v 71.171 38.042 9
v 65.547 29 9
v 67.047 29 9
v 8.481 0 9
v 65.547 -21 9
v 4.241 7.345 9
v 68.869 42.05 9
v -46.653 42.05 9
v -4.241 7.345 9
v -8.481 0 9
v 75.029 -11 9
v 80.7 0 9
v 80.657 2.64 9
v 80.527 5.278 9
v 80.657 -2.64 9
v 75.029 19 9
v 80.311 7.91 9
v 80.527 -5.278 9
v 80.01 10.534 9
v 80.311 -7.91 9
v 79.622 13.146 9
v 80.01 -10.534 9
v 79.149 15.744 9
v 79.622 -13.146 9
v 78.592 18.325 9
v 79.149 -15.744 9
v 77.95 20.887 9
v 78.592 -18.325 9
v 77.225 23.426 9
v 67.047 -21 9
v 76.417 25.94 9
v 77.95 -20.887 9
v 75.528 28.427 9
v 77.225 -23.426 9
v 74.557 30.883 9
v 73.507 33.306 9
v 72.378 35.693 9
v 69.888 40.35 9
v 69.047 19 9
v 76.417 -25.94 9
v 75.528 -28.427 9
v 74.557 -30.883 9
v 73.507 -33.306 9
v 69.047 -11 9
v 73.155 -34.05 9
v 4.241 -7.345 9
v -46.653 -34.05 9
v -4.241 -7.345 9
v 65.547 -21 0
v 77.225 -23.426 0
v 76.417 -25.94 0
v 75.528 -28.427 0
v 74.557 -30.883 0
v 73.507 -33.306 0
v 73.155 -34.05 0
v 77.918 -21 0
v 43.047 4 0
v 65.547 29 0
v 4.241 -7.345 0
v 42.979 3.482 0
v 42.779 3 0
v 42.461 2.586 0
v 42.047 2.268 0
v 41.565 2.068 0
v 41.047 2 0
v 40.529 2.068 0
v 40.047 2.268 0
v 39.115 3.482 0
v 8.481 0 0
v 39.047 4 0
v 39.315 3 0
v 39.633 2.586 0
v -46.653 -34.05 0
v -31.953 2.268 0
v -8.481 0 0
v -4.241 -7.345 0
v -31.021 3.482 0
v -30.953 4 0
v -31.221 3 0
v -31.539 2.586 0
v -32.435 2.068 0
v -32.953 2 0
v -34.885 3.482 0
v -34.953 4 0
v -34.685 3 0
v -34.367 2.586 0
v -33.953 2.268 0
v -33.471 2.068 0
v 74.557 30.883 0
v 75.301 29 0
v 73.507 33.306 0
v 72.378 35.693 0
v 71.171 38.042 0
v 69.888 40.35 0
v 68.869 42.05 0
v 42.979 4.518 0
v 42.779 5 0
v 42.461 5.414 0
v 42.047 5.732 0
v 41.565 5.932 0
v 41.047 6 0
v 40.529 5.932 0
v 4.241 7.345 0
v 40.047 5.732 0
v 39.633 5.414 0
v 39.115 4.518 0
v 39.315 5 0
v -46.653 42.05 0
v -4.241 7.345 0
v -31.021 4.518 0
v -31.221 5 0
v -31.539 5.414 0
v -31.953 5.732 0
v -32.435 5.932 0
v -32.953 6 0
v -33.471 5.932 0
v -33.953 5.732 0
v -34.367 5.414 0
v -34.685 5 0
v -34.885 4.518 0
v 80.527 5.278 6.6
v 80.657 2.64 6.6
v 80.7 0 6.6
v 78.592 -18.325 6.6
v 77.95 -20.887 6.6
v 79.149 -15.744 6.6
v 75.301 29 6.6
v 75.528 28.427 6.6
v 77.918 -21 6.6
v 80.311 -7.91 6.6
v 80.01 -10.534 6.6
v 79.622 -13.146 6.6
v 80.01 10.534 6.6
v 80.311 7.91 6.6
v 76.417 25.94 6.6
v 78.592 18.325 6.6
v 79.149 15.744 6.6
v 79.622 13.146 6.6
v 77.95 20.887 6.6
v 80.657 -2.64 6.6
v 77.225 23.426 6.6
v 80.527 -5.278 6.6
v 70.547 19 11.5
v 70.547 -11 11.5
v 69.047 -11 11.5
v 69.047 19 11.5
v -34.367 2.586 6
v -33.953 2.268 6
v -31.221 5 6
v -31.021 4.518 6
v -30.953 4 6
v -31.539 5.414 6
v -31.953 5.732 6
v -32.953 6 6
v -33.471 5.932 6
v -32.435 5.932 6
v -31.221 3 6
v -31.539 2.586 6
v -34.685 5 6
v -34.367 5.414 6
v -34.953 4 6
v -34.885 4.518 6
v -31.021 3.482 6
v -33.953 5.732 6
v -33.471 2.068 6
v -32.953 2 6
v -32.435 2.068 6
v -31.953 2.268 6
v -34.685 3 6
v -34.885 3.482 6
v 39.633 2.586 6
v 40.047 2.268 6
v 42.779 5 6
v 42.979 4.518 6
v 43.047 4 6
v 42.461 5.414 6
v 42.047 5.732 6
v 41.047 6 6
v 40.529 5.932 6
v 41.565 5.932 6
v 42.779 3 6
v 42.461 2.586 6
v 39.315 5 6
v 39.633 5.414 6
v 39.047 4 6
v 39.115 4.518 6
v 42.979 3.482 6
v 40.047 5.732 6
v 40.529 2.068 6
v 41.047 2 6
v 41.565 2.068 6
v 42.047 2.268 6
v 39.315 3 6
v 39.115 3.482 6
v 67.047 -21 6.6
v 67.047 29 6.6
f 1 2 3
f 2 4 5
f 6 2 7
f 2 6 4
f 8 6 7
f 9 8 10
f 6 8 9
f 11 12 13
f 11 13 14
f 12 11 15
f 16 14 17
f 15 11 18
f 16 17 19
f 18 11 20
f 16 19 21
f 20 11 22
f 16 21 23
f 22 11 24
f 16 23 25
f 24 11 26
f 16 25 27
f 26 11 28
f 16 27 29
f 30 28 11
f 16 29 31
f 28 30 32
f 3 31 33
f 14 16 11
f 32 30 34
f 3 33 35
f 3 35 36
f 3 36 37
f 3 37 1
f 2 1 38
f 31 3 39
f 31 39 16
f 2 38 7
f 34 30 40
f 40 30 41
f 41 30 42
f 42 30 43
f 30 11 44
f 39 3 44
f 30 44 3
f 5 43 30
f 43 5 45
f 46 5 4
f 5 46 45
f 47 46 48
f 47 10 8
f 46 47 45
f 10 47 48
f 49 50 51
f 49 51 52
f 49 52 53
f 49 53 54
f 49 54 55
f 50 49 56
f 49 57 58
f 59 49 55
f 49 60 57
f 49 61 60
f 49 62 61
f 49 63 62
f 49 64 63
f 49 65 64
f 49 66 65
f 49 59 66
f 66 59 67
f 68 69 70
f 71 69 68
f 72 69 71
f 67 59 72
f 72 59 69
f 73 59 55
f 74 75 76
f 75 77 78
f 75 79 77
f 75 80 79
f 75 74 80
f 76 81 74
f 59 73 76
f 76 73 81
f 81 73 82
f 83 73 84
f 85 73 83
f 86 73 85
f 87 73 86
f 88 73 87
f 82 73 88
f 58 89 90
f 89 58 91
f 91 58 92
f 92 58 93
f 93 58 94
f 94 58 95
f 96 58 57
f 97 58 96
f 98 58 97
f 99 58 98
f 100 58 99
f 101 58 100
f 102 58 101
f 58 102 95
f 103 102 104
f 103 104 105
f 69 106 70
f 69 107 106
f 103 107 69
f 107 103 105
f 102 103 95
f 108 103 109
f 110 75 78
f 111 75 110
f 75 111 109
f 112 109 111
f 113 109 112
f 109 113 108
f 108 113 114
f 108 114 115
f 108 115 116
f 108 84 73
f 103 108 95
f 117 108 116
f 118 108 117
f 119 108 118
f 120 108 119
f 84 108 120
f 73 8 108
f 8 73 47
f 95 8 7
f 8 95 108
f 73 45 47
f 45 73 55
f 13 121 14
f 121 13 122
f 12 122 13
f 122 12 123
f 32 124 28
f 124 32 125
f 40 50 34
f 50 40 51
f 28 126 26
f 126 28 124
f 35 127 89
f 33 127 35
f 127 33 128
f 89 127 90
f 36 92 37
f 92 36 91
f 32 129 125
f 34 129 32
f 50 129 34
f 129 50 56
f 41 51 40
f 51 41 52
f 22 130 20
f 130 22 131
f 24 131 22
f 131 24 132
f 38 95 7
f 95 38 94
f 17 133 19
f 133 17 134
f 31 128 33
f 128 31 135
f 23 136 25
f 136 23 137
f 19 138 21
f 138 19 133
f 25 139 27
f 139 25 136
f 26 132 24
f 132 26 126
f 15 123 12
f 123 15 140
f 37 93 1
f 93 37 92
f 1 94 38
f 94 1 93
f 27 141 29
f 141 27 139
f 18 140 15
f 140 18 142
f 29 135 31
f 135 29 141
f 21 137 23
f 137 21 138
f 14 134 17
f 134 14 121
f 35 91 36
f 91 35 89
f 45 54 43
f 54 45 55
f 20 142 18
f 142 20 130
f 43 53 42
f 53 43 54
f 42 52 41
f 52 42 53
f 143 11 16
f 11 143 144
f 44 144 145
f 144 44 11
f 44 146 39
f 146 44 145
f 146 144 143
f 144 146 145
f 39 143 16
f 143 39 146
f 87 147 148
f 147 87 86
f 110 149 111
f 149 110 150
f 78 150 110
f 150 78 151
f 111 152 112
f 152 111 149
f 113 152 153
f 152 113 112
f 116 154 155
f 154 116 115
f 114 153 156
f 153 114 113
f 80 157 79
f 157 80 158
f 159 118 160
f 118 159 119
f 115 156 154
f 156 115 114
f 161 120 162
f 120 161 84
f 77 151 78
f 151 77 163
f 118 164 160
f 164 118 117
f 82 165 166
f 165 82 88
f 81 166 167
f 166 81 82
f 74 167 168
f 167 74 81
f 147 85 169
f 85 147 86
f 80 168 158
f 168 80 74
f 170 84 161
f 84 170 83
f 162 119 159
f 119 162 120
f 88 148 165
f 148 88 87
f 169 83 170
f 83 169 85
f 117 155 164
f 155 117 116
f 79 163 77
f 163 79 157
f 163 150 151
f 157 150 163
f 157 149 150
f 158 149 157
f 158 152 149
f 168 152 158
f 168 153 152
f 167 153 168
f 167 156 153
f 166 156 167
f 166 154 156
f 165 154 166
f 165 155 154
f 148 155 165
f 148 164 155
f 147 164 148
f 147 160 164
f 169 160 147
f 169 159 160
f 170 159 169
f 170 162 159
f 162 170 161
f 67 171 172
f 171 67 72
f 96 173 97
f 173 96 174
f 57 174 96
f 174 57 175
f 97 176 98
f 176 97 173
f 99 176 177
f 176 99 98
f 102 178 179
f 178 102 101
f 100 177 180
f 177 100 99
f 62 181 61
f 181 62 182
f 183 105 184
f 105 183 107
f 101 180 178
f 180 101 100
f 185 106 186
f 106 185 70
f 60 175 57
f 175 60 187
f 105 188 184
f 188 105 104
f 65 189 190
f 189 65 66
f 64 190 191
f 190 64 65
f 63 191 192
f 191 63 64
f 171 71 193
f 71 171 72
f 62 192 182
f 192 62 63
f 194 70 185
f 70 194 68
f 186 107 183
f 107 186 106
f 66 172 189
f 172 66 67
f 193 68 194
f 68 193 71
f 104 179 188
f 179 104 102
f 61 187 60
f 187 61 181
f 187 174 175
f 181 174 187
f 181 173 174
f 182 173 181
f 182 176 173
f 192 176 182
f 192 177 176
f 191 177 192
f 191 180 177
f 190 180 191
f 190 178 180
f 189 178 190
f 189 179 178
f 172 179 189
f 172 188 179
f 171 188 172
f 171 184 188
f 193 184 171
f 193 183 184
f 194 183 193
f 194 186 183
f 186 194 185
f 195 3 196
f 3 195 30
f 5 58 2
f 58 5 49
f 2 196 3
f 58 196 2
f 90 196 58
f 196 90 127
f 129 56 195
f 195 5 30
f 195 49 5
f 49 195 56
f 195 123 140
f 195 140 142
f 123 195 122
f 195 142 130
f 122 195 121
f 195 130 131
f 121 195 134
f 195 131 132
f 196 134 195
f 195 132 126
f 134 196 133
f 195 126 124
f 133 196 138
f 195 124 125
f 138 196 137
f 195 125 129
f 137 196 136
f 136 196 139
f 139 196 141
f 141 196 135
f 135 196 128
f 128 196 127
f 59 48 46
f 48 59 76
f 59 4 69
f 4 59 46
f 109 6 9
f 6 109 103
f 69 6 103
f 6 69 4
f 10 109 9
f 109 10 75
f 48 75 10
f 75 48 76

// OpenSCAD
// file: layout.scad
// GENERATED by cad/fit.py from cad/ordered_parts.toml and config.scad.
// Do not edit: change those and run  python3 cad/fit.py  (from sport_cam/).

base_d = 162;
base_h = 54;
window_z = 9.6;
shelf_z = 21.6;
shelf_r = 77.25;
gap_ang = 270;
gap_d = 29.5;
post_r = 74;
post_angs = [90, 195, 345];
window_ribs = [90, 107.14, 124.29, 141.43, 158.57, 175.71, 192.86, 210, 227.14, 244.29, 261.43, 278.57, 295.71, 312.86, 330, 347.14, 4.29, 21.43, 38.57, 55.71, 72.86];
pi_holes = [[-39, -24.5], [19, -24.5], [-39, 24.5], [19, 24.5]];
pi_hole_d = 2.9;
vents_low = [];
vent_low_z = 0;
vents_high = [5, 25, 65, 85, 105, 125, 145, 165, 185, 205, 245, 265, 285, 305, 325, 345];
vent_high_z = 36.3;
lid_screw_angs = [45, 135, 225, 315];
lid_screw_z = 51;
lid_screw_recess = 0;
ptz_head_d = 5.3;
ptz_slot_min = 70;
ptz_slot_max = 114.19;
ptz_bolt_angs = [45, 135, 225, 315];
cable_slot_ang = 180;
cable_slot_r = 68.75;
cable_slot_w = 28;
cable_slot_d = 9;
floor_holes = [];
shelf_holes = [[22, 48, 3.4, 6.4], [22, 32, 3.4, 6.4], [-54, 48, 3.4, 6.4], [-54, 32, 3.4, 6.4]];
rests = [];
drum_h = 55;
drum_ang = 180;
drum_screws = [[61.109, 42.789], [-47.952, 57.147], [-25.515, -70.101], [57.147, -47.952]];
drum_screw_l = 8;
wire_hole = [0.383, 51.45, 12];
pocket_x0 = -46.953;
pocket_x1 = 69.047;
pocket_y0 = -34.35;
pocket_y1 = 42.35;
plate_t = 9;
plate_screws = [[-32.953, 4], [41.047, 4]];
wall_holes = [[36.487, -34.35, 51.675, 270], [36.487, -34.35, 7.325, 270], [-37.253, -34.35, 51.675, 270], [-37.253, -34.35, 7.325, 270], [-46.953, 35.35, 32.5, 180], [-46.953, 35.35, 6.5, 180], [-46.953, -30.65, 32.5, 180], [-46.953, -30.65, 6.5, 180]];
wall_hole_d = 3.4;
drum_floor_holes = [[-18.5, -61.5, 3.4, 6.4, 3], [-18.5, -52.5, 3.4, 6.4, 3]];
drum_rests = [[6.5, -57, 180, 6, 10, 6]];
switch_ang = 275;
switch_z = 36.5;
switch_hole_d = 24.5;
switch_flange_d = 32;
switch_boss_d = 36;
switch_seat_r = 79.302;
switch_panel_t = 3;
switch_flat_d = 22.5;
switch_flat_rot = 0;
drum_vents = [50, 60, 70, 80, 90, 100, 110, 120];
drum_vent_z = 27.5;
drum_arms = false;
nut_af = 14.29;
nut_t = 8.33;
bank_l = 114.8;
bank_w = 75.5;
bank_h = 36.2;
// file: config.scad
// SportCam — parametric dimensions (mm). Every part file includes this.
//
// Three kinds of number feed the CAD:
//   * design choices — wall thickness, clearances — set below;
//   * the sizes of the parts you buy — in ../../cad/ordered_parts.toml;
//   * the layout — where each board sits, which way the Pi faces, how big
//     the enclosure is — which ../../cad/fit.py solves from the other two
//     and writes to layout.scad (included half-way down).
// After changing either file run   python3 cad/fit.py   from sport_cam/.
// It re-solves the layout, re-renders the STLs and audits that every part
// fits together and prints on a Bambu Lab A1 Mini (cad/FIT_REPORT.md).
//
// Keep the numbers above the include plain numbers (fit.py reads them);
// anything worked out from the layout goes below it.
//
// This is the **PTZ-base build**: the camera, pan and tilt all come from the
// Arducam IMX477 PTZ camera with metal pan-tilt base (B0167B12), which bolts
// to the lid of a static enclosure — see docs/design/03-mechanical-design.md.
//
// This is the **camera-only variant**: no UWB anchors, no mast, no wearable.
// The camera finds and follows a person by vision alone.

$fn = 96;
clr = 0.25;                    // general printed-fit clearance per side

// ---- enclosure -------------------------------------------------------------
// Bottom to top: the power drum under the floor (below); the LED ring under a
// printed shelf, shining out through the LED window; the Raspberry Pi on the
// shelf; the lid with the camera. Every part must print in one piece on a
// Bambu Lab A1 Mini (≤ 170 mm on every axis); fit.py keeps it that way.
base_d_min    = 150;           // narrowest enclosure (outer Ø); fit.py widens it only if the parts need it
base_h_min    = 40;            // lowest floor-to-lid height; fit.py raises it to clear the stack
base_wall     = 3;
lid_t         = 5;             // lid is structural: it carries the whole camera
spigot_h      = 6;             // locating ring under the lid that drops into the mouth
spigot_w      = 3;
lid_screw_pad = 7;             // the ring is thickened here for the four radial M3 inserts
lid_screw_d   = 3.4;
led_window_h  = 12;            // circumferential window the LED ring lights
window_bridge = 22;            // longest unsupported span over the window; ribs every this far
window_rib_w  = 3;
diffuser_t    = 1.6;           // translucent band slid over the outside of the window
diffuser_lip  = 2;             // how far it overlaps the wall above and below
ledge_h       = 2;             // the band rests on this outside ledge

tape_t        = 1;             // foam tape under the power boards and the LED ring
part_gap      = 2;             // clearance fit.py keeps between parts
wall_gap      = 1;             // and between a part and the wall
shelf_t       = 3;             // the Pi shelf
post_d        = 10;            // shelf posts, merged into the wall; M3 insert in each top
post_insert_d = 4.0;
vent_w        = 4;
vent_h        = 8;
ribbon_slack_h = 8;            // clear height kept under the lid's cable slot for the ribbon to turn

// ---- Arducam pan-tilt base interface ---------------------------------------
// The base is a round turntable on four brass standoffs, the pan servo hanging
// under it between them. It keeps its standoffs: four M3 screws come up
// through the lid into them. Arducam publishes no drawing for the B0167B12
// base, so the lid is cut with radial SLOTS spanning this range. Your base's
// spacing goes in ordered_parts.toml [ptz]; the audit checks it lands inside.
ptz_bolt_min  = 70;
ptz_bolt_max  = 104;
ptz_slot_w    = 3.4;           // M3 clearance
// The ribbon and the leads leave the camera head at the top, drape over the
// turntable and come in through a slot at the back of the lid (fit.py sizes
// it to the ribbon and places it clear of the bolt slots and the lid screws).
ptz_loop      = 60;            // free ribbon kept outside for the pan and tilt travel

// ---- power drum ------------------------------------------------------------
// A round, open-topped box the enclosure's own diameter, screwed under its
// floor (the floor is its lid), so the two make one cylinder. The tripod screws
// into it, and it holds everything to do with power, which leaves the
// enclosure only the LED ring, the shelf and the Pi, and makes the whole thing
// lower. Across the middle, a pocket the power bank slides into from one side;
// the buck and the power latch stand on edge against the pocket's two side
// walls, screwed through them from inside the pocket; the PD trigger and the
// rocker switch are on the drum wall. A drop-in plate under the bank holds the
// tripod nut and carries the sprung catch. fit.py places it all.
drum_wall = 2.4;               // outer wall
drum_floor = 3;                // also the ledge the tripod screw pulls the nut down onto
pocket_wall = 3;               // the bank pocket's walls; the boards' screws are countersunk flush on the bank's side
pocket_clr = 0.6;              // round the bank, each side, so it slides
pocket_head = 1.0;             // air over the bank, under the enclosure floor
board_clear = 1.5;             // under a board standing on edge
drum_post_d = 10;              // four posts merged into the wall, an M3 heat-set insert in each top
drum_insert_d = 4.0;
drum_insert_h = 6;
wire_hole_d = 12;              // in the enclosure floor, for the leads up from the drum
catch_l = 6;                   // the catch's ramp, beyond the bank's front face
catch_h = 2.5;                 // how far it stands up in front of the bank
catch_w = 30;                  // its width, across the open end
bar_span = 50;                 // it sits on a crossbar along the plate's front edge, held at both ends,
bar_t = 2.4;                   // thinned from underneath so it flexes down as the bank goes over
finger_l = 24;                 // finger windows beside the bank's front: how far in from the open end,
finger_z = 10;                 // their bottom above the bank's underside,
finger_d = 14;                 // and how far past the pocket walls they reach
tripod_clear_d = 10.2;         // through the drum floor, for the bushing or a 3/8-16 screw
tripod_nut_clr = 0.2;          // round the nut in its hex hole, each side (epoxied)
plate_clr = 0.3;               // round the drop-in plate in the pocket, each side

// ---- solved layout ---------------------------------------------------------
include <layout.scad>          // GENERATED by cad/fit.py — bought-part sizes + layout

R_in = base_d / 2 - base_wall; // inside of the wall
// main file
// Bank plate: the floor of the power drum's bank pocket, a separate part so
// that the boards' screws through the pocket walls can be driven first.
//
// It drops into the pocket and two M3 screws come up through the drum floor
// into heat-set inserts in its underside. The tripod's 3/8-16 nut sits in a
// hex hole through it, on the drum floor: the tripod screw comes up through
// the floor and pulls the nut down onto it, so the plate only stops the nut
// turning. The bank slides in over it.
//
// Its front edge is a crossbar, held at both ends and thinned from underneath,
// with a catch on top in the middle: the bank pushes it down going in, and it
// springs up behind the bank's front face once the bank is home. To take the
// bank out, press the catch down and pinch the bank out through the finger
// windows. (A bar held at both ends prints as a plain bridge.)
//
// Drawn in the pocket's frame, as it prints: underside on the plate, the bank
// along +x with its open end at +x, the tripod axis at the origin.
include <config.scad>

R = base_d / 2;
x0 = pocket_x0;  x1 = pocket_x1;  y0 = pocket_y0;  y1 = pocket_y1;
c = plate_clr;
T = plate_t;
yc = (y0 + y1) / 2;
bx0 = x1 - 2;                               // the crossbar: from here to the front edge

module outline() {
    // the pocket's inside, out to the drum's outline at the open end
    intersection() {
        translate([x0 + c, y0 + c, 0]) cube([R + 6 - x0, y1 - y0 - 2 * c, T]);
        translate([0, 0, -1]) cylinder(r = R - 0.3, h = T + 2, $fn = 192);
    }
}

module catch() {
    // a vertical face against the bank, sloping down towards the open end, catch_w wide
    intersection() {
        translate([0, yc, 0]) rotate([90, 0, 0]) linear_extrude(height = catch_w, center = true)
            polygon([[x1, T - 0.01], [x1, T + catch_h], [x1 + 1.5, T + catch_h], [x1 + catch_l, T - 0.01]]);
        translate([0, 0, -1]) cylinder(r = R - 0.3, h = T + catch_h + 2, $fn = 192);
    }
}

module bank_plate() {
    difference() {
        union() { outline(); catch(); }
        // the crossbar: a slit behind it, and thinned from underneath, so it flexes down in the
        // middle; its ends stay joined to the plate either side
        translate([bx0 - 1.5, yc - bar_span / 2, -1]) cube([1.5, bar_span, T + 2]);
        translate([bx0 - 1.5, yc - bar_span / 2, -1]) cube([R, bar_span, T - bar_t + 1]);
        // the tripod nut: a hex hole right through, the nut on the drum floor under it
        translate([0, 0, -1]) cylinder(d = (nut_af + 2 * tripod_nut_clr) / cos(30), h = T + 2, $fn = 6);
        // heat-set inserts from underneath, for the two screws up through the drum floor
        for (p = plate_screws) translate([p[0], p[1], -1]) cylinder(d = drum_insert_d, h = drum_insert_h + 1, $fn = 24);
    }
}

bank_plate();
